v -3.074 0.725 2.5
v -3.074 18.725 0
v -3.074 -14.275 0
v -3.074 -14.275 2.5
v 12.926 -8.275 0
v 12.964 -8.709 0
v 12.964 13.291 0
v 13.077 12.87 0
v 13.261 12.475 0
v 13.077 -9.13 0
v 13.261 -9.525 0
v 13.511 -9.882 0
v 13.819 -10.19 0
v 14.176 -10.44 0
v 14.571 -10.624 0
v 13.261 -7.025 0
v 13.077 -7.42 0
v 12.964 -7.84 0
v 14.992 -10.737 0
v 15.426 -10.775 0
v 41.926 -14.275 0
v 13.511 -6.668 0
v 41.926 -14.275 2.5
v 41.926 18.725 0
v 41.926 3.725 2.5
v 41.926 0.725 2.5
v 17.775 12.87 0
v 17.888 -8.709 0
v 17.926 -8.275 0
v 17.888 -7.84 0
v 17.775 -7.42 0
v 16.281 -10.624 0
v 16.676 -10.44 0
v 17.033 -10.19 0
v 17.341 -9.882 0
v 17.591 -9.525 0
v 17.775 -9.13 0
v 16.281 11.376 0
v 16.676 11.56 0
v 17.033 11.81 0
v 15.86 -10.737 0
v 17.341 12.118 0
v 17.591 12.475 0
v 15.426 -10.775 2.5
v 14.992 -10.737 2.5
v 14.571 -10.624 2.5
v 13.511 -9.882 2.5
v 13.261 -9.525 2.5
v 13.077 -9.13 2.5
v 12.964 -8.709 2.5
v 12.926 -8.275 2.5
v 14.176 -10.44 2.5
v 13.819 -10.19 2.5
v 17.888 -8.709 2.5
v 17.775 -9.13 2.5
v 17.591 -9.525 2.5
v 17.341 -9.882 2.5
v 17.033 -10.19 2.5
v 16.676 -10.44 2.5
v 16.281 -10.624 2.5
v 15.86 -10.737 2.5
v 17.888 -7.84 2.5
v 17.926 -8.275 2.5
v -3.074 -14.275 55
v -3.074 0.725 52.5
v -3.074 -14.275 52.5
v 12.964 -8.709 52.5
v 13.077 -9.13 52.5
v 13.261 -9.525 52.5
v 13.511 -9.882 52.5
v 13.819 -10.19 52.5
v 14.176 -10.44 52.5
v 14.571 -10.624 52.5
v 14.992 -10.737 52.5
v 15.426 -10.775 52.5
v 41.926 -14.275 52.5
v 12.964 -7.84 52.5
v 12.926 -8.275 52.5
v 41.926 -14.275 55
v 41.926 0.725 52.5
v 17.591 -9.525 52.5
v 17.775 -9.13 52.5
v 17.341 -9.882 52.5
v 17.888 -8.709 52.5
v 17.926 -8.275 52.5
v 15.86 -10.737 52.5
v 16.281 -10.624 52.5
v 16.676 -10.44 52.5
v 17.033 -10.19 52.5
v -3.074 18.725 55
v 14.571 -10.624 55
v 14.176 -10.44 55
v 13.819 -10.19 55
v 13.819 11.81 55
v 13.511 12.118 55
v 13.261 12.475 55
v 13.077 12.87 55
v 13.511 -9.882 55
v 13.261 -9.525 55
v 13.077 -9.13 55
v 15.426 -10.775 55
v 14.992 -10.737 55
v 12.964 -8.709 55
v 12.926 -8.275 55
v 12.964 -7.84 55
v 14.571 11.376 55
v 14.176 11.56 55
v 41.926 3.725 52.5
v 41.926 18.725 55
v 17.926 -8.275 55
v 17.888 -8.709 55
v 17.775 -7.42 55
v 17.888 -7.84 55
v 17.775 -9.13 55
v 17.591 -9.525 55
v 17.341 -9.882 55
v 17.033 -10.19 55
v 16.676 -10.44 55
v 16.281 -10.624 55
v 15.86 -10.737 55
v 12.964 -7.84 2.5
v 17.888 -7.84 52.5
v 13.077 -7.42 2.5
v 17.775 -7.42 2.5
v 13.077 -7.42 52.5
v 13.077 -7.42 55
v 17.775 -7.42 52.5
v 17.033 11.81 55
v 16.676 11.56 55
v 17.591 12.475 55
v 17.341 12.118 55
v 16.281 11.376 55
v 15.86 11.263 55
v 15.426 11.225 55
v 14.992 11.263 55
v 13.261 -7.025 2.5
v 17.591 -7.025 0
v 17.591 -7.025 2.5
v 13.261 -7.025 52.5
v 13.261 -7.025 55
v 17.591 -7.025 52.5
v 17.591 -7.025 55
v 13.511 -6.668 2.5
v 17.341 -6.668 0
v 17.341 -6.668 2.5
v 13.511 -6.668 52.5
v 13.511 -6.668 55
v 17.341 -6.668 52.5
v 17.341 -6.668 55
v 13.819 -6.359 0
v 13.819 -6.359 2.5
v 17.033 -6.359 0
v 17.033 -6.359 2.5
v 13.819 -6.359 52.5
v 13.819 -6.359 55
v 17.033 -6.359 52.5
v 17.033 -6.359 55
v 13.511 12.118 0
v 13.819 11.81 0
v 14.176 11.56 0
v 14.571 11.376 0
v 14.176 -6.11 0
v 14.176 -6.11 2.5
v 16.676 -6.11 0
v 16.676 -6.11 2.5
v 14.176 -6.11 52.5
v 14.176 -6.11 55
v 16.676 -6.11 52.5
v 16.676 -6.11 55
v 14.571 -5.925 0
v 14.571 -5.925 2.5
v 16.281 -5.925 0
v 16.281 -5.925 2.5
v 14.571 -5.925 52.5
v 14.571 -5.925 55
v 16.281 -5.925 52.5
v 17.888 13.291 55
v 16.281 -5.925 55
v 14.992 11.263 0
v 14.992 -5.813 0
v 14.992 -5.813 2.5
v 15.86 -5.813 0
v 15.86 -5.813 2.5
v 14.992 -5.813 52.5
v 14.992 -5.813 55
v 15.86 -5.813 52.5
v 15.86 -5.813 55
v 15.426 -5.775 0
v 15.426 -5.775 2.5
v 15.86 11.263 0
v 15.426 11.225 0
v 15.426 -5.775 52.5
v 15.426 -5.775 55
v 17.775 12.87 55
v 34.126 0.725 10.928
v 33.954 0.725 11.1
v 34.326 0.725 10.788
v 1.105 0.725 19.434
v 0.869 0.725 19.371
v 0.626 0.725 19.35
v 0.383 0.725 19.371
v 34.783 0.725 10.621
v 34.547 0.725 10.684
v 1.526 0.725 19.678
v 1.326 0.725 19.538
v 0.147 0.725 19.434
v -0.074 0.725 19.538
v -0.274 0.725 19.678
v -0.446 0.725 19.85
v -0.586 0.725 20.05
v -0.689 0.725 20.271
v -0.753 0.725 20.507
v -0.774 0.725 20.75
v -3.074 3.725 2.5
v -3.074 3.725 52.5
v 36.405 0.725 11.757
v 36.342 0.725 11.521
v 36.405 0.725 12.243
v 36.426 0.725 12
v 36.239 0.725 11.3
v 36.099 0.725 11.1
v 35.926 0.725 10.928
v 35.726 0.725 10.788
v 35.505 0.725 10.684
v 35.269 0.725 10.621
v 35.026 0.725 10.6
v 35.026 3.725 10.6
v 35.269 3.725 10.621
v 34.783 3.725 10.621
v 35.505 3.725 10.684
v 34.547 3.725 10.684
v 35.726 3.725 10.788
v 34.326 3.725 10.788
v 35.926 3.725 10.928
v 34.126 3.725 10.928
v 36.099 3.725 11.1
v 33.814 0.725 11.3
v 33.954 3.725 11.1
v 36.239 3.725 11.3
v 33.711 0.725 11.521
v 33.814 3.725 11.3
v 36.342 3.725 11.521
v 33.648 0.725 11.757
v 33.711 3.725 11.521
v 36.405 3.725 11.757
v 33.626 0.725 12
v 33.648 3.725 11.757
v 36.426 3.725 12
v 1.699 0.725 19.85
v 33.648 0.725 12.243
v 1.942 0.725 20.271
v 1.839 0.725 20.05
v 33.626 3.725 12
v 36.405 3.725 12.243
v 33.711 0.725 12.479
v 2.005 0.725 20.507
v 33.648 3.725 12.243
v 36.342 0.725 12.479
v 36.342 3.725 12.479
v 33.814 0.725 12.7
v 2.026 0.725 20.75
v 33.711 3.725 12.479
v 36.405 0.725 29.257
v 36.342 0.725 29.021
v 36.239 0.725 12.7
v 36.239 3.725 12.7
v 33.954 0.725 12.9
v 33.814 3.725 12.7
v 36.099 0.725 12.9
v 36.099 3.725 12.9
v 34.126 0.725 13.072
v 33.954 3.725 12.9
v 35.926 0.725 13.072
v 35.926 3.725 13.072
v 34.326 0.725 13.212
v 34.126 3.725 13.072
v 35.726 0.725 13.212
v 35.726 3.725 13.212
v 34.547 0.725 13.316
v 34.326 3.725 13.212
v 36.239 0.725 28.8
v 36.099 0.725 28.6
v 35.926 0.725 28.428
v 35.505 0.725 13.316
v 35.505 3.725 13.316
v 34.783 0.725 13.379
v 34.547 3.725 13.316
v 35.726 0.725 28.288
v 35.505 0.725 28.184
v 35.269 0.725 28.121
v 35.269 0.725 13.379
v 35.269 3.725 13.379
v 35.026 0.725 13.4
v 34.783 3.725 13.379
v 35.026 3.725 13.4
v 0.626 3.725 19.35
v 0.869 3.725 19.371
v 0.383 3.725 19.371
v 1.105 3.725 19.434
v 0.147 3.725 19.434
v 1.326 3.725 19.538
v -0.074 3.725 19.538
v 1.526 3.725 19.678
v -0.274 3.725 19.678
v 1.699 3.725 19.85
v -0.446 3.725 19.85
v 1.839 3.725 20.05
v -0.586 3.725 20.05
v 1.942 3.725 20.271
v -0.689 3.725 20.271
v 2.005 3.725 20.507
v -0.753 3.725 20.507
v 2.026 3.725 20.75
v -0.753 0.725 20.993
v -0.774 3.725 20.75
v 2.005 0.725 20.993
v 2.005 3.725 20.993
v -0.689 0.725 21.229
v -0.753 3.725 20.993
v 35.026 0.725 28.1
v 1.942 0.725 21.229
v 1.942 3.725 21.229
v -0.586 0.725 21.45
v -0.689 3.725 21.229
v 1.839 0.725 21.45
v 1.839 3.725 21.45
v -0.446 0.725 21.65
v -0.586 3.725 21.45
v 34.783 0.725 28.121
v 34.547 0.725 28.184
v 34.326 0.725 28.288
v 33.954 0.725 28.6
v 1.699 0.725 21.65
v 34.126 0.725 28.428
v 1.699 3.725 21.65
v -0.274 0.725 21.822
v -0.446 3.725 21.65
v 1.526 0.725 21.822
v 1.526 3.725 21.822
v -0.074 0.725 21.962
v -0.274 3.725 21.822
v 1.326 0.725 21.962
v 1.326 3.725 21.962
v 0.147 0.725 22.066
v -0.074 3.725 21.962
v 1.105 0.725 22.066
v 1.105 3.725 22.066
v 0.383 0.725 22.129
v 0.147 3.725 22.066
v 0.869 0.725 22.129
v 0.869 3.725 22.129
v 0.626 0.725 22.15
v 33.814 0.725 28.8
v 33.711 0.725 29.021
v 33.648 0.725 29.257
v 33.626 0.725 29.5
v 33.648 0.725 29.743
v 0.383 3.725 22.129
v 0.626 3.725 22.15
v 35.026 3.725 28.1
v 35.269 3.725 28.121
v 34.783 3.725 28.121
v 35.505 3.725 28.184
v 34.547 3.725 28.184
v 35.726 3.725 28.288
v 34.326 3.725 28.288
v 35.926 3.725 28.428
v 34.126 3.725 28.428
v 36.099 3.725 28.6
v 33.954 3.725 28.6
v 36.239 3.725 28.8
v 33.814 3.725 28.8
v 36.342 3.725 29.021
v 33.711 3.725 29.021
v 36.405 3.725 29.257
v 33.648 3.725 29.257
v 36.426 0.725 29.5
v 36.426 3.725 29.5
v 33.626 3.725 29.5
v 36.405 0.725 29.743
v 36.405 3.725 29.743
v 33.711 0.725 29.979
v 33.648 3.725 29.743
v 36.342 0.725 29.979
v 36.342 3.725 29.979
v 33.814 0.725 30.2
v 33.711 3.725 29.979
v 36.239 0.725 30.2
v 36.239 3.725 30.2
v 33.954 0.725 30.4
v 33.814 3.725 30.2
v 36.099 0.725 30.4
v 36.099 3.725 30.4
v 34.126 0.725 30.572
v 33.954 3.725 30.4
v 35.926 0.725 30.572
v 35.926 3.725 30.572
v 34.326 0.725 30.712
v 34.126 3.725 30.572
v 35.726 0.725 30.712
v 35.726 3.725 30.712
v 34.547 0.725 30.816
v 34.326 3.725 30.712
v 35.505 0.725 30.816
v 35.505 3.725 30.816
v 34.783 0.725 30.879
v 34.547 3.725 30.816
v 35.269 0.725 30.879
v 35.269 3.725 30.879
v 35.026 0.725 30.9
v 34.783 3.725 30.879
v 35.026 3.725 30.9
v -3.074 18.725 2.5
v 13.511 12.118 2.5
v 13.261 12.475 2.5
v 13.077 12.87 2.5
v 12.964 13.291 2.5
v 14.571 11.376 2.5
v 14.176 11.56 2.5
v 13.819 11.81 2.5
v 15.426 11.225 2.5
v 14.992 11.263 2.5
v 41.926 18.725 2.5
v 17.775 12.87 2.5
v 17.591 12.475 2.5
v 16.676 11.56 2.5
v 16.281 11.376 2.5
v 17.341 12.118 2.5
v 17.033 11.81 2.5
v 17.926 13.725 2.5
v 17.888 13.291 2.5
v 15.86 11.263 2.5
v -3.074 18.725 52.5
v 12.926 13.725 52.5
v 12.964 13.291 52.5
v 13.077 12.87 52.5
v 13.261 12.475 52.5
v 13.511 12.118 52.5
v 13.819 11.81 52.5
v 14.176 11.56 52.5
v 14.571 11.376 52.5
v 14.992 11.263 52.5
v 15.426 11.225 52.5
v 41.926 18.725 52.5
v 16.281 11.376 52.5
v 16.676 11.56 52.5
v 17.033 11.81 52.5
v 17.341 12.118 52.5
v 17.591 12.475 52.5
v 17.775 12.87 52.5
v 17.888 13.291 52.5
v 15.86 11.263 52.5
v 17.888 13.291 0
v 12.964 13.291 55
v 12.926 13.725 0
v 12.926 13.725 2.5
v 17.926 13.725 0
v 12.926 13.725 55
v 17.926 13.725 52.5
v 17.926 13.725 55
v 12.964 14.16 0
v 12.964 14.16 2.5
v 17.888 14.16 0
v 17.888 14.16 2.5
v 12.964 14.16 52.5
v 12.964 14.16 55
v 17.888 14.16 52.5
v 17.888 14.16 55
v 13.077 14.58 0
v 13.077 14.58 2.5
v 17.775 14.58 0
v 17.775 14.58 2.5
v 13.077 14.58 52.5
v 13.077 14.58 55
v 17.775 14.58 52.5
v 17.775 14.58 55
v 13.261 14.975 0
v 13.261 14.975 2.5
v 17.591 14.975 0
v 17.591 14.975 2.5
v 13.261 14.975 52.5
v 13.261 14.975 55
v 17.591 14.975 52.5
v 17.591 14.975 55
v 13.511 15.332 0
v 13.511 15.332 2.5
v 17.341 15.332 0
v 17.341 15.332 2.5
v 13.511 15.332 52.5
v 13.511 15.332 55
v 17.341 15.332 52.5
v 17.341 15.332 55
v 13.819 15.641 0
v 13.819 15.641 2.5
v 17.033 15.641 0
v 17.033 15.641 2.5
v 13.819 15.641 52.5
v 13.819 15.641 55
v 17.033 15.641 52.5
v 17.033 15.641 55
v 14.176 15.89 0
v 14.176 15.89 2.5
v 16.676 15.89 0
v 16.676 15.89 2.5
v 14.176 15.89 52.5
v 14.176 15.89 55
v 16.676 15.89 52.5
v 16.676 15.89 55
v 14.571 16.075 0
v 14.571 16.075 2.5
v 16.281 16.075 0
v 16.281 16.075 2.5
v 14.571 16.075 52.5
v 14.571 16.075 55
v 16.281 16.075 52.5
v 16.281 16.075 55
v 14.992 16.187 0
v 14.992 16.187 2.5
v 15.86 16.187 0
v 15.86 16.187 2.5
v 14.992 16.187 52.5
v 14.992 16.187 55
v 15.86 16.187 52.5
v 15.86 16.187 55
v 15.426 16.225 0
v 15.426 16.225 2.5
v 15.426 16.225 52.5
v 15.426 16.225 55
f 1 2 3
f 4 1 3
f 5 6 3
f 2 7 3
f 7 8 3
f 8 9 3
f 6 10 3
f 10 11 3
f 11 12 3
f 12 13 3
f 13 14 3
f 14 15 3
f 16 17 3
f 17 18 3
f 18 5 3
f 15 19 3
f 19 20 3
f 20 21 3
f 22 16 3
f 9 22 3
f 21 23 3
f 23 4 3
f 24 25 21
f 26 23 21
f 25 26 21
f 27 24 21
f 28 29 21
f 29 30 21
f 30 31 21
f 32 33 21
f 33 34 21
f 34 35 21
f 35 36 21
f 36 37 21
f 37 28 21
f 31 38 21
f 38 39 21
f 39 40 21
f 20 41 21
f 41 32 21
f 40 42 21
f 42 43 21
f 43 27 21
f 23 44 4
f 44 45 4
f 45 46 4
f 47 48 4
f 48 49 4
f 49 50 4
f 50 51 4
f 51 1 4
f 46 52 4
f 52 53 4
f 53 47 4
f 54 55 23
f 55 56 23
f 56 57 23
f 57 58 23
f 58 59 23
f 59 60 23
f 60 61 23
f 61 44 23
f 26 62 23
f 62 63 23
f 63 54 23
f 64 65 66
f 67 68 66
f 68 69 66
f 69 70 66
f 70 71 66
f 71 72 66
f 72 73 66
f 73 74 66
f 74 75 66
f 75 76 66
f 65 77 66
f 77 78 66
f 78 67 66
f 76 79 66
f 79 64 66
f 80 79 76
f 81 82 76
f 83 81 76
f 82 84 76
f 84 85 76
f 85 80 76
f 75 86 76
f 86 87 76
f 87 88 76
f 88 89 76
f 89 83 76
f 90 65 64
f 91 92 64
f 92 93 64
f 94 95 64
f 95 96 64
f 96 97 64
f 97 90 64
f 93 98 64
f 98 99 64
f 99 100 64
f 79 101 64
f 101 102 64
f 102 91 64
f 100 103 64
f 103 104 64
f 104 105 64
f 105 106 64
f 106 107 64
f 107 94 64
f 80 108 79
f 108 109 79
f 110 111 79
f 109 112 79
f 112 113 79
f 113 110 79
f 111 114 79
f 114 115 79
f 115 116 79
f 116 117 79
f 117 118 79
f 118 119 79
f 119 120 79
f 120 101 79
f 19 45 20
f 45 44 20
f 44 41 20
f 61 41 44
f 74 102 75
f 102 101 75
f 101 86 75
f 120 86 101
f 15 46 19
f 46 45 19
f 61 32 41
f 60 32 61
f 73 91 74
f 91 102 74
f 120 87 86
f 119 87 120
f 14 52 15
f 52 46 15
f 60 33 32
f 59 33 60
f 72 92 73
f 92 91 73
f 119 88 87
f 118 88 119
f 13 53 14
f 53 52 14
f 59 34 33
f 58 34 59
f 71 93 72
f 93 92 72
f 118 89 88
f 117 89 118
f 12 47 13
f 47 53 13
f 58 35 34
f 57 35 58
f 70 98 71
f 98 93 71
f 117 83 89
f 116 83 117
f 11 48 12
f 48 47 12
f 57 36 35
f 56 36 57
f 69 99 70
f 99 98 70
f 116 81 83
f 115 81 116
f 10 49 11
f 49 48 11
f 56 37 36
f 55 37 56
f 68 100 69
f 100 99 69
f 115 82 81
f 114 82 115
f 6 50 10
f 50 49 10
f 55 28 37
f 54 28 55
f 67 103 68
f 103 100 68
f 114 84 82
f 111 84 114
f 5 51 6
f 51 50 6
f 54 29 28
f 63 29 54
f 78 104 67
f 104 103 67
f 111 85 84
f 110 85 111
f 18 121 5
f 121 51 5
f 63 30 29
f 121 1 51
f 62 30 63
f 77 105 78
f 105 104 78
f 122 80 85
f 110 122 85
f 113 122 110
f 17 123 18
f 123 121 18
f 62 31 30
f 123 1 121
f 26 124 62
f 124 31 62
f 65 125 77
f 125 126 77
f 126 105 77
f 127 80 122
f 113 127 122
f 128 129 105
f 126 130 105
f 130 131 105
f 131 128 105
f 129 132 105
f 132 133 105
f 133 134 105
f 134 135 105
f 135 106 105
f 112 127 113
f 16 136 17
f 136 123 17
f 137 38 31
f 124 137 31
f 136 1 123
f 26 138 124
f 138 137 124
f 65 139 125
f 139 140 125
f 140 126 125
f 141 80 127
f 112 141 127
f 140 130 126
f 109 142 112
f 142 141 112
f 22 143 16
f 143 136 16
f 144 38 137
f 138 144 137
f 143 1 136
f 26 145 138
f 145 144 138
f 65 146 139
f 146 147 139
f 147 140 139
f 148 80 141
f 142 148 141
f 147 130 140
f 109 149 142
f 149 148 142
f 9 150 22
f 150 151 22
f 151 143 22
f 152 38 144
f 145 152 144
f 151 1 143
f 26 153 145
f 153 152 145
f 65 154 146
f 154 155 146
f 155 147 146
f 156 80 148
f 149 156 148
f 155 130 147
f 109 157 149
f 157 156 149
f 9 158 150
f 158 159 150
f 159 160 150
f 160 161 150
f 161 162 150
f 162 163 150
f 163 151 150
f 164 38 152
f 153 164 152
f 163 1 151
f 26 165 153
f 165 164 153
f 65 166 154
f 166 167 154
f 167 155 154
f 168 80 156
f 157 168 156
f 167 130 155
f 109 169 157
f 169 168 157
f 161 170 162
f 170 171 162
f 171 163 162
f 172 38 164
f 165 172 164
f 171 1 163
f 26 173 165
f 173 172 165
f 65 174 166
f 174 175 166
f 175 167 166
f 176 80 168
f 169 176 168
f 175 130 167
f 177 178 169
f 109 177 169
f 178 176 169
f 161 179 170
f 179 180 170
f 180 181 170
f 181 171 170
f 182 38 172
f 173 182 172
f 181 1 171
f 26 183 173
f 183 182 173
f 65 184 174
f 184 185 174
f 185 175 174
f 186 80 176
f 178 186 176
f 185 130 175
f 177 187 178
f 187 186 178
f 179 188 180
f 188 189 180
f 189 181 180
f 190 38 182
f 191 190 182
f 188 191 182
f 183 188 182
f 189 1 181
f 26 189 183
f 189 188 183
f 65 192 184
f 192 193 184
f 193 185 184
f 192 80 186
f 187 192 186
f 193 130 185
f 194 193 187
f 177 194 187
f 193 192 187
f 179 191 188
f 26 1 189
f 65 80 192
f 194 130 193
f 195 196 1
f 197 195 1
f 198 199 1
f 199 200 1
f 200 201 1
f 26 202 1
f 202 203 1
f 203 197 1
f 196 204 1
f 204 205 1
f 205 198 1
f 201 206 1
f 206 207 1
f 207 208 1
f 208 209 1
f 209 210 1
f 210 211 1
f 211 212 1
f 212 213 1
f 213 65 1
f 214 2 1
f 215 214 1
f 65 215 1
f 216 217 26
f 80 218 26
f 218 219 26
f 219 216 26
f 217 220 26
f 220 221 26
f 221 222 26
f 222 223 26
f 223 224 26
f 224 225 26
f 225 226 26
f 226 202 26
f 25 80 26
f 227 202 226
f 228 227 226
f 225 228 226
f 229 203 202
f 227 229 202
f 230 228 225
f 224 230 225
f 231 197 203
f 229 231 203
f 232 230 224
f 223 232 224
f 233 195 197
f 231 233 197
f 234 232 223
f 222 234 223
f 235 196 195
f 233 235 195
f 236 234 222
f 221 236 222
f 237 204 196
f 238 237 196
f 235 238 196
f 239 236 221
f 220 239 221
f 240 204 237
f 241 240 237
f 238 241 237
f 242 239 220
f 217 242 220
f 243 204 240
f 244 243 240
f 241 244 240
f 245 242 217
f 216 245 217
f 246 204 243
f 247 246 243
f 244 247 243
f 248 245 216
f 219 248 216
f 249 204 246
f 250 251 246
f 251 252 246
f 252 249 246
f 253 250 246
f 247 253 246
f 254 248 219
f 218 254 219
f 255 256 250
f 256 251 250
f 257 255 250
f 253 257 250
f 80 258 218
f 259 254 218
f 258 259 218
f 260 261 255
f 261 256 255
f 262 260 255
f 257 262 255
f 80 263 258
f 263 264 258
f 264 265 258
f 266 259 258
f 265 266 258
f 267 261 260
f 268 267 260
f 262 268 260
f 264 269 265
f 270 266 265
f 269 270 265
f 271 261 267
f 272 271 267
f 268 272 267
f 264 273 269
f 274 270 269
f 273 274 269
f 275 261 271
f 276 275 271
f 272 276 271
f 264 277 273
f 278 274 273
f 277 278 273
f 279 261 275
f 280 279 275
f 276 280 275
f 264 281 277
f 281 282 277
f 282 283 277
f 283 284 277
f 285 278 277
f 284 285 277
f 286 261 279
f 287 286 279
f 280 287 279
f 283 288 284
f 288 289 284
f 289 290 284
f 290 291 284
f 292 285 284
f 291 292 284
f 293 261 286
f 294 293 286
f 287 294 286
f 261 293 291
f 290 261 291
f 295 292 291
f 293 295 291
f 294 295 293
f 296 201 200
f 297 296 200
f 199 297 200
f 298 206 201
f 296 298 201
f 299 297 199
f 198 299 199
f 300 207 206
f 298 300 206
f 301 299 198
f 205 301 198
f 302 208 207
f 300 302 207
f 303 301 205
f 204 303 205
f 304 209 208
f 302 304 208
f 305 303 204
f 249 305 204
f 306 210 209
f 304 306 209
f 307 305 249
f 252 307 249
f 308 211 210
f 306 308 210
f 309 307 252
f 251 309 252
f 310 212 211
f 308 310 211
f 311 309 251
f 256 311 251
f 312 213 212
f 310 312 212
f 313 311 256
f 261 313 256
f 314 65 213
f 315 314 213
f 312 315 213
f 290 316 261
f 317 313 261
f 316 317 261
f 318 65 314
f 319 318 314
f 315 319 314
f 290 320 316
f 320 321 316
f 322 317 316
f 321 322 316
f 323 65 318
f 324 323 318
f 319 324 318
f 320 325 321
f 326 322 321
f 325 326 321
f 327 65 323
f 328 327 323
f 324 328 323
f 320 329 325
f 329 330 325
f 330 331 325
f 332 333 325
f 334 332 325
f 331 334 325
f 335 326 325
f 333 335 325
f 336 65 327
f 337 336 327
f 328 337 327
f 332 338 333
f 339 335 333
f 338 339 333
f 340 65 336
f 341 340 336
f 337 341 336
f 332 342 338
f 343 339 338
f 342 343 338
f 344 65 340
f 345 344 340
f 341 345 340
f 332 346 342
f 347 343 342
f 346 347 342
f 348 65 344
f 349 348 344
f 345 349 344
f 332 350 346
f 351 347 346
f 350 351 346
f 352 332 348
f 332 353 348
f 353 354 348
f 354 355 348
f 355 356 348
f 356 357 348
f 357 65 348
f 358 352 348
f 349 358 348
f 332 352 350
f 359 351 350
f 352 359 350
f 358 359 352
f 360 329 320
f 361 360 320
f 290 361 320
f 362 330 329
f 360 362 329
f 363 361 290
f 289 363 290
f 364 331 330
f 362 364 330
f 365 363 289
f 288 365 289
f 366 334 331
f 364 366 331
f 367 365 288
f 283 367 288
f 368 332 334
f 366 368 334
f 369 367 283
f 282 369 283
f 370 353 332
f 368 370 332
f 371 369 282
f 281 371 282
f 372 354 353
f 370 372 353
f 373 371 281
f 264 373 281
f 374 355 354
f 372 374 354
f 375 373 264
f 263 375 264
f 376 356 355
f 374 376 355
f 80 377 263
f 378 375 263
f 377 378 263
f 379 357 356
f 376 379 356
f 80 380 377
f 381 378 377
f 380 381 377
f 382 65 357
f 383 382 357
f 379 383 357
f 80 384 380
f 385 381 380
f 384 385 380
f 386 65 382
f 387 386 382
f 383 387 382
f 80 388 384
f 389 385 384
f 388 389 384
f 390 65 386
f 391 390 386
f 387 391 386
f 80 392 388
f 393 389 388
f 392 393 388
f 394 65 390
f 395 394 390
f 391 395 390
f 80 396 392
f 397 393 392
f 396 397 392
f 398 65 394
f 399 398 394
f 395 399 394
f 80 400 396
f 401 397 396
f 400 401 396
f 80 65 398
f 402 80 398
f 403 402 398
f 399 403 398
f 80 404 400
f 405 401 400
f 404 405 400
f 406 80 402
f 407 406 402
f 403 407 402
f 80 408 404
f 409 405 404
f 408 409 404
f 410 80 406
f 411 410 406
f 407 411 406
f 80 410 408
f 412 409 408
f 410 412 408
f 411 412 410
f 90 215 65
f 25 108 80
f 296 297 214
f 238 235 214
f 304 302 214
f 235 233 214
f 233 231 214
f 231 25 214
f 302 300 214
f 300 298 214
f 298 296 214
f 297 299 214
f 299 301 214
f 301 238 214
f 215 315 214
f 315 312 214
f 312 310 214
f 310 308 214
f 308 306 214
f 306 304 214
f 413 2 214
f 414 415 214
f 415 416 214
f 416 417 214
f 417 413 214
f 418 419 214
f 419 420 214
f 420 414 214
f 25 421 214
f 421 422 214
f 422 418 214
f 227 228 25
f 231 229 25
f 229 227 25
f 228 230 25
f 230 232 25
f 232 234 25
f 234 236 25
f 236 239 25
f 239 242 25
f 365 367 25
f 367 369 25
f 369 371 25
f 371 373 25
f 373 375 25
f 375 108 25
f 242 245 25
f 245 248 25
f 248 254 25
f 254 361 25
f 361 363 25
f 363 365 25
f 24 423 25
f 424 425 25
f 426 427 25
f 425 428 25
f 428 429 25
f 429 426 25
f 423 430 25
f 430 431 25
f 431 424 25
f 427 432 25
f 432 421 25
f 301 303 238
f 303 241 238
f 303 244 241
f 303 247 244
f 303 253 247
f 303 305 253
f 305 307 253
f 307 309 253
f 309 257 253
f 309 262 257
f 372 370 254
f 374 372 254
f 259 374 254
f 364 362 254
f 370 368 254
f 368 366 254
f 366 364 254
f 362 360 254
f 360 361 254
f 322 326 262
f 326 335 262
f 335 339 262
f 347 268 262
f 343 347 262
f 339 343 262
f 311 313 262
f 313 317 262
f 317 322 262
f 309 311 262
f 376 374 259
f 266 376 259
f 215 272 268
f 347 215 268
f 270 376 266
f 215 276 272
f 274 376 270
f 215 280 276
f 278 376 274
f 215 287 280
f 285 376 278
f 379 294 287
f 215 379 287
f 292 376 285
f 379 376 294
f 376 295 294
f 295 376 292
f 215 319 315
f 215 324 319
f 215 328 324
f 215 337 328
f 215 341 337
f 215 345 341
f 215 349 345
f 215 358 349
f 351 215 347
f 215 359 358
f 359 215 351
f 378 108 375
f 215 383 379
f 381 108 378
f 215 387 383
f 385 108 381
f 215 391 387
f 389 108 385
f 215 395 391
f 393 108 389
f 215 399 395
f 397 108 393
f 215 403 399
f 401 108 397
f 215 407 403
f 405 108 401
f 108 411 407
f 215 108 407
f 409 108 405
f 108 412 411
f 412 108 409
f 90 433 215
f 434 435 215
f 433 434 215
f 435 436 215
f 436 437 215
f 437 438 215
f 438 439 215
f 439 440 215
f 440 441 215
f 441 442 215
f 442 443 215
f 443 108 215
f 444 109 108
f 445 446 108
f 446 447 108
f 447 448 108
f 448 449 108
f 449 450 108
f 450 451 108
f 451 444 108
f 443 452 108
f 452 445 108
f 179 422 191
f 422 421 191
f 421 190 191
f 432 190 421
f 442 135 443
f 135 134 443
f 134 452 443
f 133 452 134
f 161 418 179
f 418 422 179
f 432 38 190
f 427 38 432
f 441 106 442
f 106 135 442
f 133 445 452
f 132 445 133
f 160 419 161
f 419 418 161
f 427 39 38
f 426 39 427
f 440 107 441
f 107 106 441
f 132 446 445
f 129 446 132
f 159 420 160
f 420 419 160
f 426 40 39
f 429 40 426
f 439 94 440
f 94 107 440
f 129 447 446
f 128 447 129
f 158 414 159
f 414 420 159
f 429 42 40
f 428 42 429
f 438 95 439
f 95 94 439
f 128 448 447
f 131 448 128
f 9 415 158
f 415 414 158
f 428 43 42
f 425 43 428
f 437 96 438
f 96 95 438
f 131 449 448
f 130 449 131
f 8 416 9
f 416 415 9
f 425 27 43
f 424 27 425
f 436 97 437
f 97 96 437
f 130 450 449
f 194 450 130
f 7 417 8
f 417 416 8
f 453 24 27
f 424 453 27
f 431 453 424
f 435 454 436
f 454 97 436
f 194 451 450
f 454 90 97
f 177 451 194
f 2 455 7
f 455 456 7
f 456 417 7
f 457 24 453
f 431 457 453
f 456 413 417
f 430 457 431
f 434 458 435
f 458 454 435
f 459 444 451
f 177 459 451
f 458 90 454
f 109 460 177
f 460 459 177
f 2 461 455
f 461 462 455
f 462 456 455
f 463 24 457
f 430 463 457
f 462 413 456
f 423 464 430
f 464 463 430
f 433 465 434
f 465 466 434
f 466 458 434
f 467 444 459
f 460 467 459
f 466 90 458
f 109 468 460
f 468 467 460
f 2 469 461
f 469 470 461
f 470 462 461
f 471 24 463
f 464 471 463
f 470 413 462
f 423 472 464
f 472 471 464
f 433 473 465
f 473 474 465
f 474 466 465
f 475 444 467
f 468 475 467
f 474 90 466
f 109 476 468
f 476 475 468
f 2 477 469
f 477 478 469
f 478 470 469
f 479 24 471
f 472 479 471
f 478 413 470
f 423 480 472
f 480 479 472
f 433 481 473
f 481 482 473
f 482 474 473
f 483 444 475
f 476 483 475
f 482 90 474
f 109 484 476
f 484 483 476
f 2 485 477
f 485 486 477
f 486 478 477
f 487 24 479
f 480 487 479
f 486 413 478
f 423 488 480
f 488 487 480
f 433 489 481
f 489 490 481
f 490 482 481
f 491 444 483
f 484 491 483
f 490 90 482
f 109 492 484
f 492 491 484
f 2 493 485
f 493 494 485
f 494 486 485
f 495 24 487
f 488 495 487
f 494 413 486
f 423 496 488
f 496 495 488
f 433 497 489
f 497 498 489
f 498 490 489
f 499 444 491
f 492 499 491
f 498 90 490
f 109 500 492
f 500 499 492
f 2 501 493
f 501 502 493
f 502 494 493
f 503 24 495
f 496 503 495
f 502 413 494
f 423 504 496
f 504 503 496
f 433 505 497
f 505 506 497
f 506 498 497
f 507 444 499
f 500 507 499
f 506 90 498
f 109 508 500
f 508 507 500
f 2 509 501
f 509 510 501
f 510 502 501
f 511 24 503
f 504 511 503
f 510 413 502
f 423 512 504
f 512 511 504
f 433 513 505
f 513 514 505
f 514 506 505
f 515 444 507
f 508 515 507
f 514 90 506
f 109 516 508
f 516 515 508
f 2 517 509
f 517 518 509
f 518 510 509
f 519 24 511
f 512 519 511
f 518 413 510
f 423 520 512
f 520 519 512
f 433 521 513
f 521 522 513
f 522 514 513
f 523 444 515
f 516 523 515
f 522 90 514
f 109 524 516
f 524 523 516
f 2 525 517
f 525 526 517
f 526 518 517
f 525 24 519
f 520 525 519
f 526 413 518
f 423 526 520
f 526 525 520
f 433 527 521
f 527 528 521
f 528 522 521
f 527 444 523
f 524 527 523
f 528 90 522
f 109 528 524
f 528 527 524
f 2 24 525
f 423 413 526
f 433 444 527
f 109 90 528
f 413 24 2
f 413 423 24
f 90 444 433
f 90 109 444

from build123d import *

# Parameters (mm, degrees)
ESQUISSE1_W             = 45
ESQUISSE1_H             = 3
BOSS_EXTRU_1_DEPTH      = 55
ESQUISSE2_R             = 1.4
ENL_V_MAT_EXTRU_1_DEPTH = 50
ESQUISSE3_W             = 45
ESQUISSE3_H             = 2.5
BOSS_EXTRU_2_DEPTH      = 15
ESQUISSE4_R             = 2.5
ENL_V_MAT_EXTRU_2_DEPTH = 65
ESQUISSE5_W             = 45
ESQUISSE5_H             = 2.5
BOSS_EXTRU_3_DEPTH      = 15
ESQUISSE6_R             = 2.5
ENL_V_MAT_EXTRU_3_DEPTH = 65


with BuildPart() as part:
    # Esquisse1 → Boss.-Extru.1 (new body)
    with BuildSketch(Plane.XY):
        with Locations((19.426229508, 2.225409836)):
            Rectangle(ESQUISSE1_W, ESQUISSE1_H)
    extrude(amount=BOSS_EXTRU_1_DEPTH)

    # Esquisse2 → Enlèv. mat.-Extru.1 (cut)
    with BuildSketch(Plane.XZ.offset(-0.725409836)):
        with Locations((0.626229508, 20.75)):
            Circle(ESQUISSE2_R)
        with Locations((35.026229508, 12)):
            Circle(ESQUISSE2_R)
        with Locations((35.026229508, 29.5)):
            Circle(ESQUISSE2_R)
    extrude(amount=-ENL_V_MAT_EXTRU_1_DEPTH, mode=Mode.SUBTRACT)

    # Esquisse3 → Boss.-Extru.2 (add)
    with BuildSketch(Plane.XZ.offset(-0.725409836)):
        with Locations((19.426229508, 53.75)):
            Rectangle(ESQUISSE3_W, ESQUISSE3_H)
        with Locations((19.426229508, 1.25)):
            Rectangle(ESQUISSE3_W, ESQUISSE3_H)
    extrude(amount=BOSS_EXTRU_2_DEPTH)

    # Esquisse4 → Enlèv. mat.-Extru.2 (cut)
    with BuildSketch(Plane.XY.offset(55)):
        with Locations((15.426229508, -8.274590164)):
            Circle(ESQUISSE4_R)
    extrude(amount=-ENL_V_MAT_EXTRU_2_DEPTH, mode=Mode.SUBTRACT)

    # Esquisse5 → Boss.-Extru.3 (add)
    with BuildSketch(Plane(origin=(0, 3.725409836, 0), x_dir=(1, 0, 0), z_dir=(0, 1, 0))):
        with Locations((19.426229508, -53.75)):
            Rectangle(ESQUISSE5_W, ESQUISSE5_H)
        with Locations((19.426229508, -1.25)):
            Rectangle(ESQUISSE5_W, ESQUISSE5_H)
    extrude(amount=BOSS_EXTRU_3_DEPTH)

    # Esquisse6 → Enlèv. mat.-Extru.3 (cut)
    with BuildSketch(Plane.XY.offset(55)):
        with Locations((15.426229508, 13.725409836)):
            Circle(ESQUISSE6_R)
    extrude(amount=-ENL_V_MAT_EXTRU_3_DEPTH, mode=Mode.SUBTRACT)


solid = part.part
